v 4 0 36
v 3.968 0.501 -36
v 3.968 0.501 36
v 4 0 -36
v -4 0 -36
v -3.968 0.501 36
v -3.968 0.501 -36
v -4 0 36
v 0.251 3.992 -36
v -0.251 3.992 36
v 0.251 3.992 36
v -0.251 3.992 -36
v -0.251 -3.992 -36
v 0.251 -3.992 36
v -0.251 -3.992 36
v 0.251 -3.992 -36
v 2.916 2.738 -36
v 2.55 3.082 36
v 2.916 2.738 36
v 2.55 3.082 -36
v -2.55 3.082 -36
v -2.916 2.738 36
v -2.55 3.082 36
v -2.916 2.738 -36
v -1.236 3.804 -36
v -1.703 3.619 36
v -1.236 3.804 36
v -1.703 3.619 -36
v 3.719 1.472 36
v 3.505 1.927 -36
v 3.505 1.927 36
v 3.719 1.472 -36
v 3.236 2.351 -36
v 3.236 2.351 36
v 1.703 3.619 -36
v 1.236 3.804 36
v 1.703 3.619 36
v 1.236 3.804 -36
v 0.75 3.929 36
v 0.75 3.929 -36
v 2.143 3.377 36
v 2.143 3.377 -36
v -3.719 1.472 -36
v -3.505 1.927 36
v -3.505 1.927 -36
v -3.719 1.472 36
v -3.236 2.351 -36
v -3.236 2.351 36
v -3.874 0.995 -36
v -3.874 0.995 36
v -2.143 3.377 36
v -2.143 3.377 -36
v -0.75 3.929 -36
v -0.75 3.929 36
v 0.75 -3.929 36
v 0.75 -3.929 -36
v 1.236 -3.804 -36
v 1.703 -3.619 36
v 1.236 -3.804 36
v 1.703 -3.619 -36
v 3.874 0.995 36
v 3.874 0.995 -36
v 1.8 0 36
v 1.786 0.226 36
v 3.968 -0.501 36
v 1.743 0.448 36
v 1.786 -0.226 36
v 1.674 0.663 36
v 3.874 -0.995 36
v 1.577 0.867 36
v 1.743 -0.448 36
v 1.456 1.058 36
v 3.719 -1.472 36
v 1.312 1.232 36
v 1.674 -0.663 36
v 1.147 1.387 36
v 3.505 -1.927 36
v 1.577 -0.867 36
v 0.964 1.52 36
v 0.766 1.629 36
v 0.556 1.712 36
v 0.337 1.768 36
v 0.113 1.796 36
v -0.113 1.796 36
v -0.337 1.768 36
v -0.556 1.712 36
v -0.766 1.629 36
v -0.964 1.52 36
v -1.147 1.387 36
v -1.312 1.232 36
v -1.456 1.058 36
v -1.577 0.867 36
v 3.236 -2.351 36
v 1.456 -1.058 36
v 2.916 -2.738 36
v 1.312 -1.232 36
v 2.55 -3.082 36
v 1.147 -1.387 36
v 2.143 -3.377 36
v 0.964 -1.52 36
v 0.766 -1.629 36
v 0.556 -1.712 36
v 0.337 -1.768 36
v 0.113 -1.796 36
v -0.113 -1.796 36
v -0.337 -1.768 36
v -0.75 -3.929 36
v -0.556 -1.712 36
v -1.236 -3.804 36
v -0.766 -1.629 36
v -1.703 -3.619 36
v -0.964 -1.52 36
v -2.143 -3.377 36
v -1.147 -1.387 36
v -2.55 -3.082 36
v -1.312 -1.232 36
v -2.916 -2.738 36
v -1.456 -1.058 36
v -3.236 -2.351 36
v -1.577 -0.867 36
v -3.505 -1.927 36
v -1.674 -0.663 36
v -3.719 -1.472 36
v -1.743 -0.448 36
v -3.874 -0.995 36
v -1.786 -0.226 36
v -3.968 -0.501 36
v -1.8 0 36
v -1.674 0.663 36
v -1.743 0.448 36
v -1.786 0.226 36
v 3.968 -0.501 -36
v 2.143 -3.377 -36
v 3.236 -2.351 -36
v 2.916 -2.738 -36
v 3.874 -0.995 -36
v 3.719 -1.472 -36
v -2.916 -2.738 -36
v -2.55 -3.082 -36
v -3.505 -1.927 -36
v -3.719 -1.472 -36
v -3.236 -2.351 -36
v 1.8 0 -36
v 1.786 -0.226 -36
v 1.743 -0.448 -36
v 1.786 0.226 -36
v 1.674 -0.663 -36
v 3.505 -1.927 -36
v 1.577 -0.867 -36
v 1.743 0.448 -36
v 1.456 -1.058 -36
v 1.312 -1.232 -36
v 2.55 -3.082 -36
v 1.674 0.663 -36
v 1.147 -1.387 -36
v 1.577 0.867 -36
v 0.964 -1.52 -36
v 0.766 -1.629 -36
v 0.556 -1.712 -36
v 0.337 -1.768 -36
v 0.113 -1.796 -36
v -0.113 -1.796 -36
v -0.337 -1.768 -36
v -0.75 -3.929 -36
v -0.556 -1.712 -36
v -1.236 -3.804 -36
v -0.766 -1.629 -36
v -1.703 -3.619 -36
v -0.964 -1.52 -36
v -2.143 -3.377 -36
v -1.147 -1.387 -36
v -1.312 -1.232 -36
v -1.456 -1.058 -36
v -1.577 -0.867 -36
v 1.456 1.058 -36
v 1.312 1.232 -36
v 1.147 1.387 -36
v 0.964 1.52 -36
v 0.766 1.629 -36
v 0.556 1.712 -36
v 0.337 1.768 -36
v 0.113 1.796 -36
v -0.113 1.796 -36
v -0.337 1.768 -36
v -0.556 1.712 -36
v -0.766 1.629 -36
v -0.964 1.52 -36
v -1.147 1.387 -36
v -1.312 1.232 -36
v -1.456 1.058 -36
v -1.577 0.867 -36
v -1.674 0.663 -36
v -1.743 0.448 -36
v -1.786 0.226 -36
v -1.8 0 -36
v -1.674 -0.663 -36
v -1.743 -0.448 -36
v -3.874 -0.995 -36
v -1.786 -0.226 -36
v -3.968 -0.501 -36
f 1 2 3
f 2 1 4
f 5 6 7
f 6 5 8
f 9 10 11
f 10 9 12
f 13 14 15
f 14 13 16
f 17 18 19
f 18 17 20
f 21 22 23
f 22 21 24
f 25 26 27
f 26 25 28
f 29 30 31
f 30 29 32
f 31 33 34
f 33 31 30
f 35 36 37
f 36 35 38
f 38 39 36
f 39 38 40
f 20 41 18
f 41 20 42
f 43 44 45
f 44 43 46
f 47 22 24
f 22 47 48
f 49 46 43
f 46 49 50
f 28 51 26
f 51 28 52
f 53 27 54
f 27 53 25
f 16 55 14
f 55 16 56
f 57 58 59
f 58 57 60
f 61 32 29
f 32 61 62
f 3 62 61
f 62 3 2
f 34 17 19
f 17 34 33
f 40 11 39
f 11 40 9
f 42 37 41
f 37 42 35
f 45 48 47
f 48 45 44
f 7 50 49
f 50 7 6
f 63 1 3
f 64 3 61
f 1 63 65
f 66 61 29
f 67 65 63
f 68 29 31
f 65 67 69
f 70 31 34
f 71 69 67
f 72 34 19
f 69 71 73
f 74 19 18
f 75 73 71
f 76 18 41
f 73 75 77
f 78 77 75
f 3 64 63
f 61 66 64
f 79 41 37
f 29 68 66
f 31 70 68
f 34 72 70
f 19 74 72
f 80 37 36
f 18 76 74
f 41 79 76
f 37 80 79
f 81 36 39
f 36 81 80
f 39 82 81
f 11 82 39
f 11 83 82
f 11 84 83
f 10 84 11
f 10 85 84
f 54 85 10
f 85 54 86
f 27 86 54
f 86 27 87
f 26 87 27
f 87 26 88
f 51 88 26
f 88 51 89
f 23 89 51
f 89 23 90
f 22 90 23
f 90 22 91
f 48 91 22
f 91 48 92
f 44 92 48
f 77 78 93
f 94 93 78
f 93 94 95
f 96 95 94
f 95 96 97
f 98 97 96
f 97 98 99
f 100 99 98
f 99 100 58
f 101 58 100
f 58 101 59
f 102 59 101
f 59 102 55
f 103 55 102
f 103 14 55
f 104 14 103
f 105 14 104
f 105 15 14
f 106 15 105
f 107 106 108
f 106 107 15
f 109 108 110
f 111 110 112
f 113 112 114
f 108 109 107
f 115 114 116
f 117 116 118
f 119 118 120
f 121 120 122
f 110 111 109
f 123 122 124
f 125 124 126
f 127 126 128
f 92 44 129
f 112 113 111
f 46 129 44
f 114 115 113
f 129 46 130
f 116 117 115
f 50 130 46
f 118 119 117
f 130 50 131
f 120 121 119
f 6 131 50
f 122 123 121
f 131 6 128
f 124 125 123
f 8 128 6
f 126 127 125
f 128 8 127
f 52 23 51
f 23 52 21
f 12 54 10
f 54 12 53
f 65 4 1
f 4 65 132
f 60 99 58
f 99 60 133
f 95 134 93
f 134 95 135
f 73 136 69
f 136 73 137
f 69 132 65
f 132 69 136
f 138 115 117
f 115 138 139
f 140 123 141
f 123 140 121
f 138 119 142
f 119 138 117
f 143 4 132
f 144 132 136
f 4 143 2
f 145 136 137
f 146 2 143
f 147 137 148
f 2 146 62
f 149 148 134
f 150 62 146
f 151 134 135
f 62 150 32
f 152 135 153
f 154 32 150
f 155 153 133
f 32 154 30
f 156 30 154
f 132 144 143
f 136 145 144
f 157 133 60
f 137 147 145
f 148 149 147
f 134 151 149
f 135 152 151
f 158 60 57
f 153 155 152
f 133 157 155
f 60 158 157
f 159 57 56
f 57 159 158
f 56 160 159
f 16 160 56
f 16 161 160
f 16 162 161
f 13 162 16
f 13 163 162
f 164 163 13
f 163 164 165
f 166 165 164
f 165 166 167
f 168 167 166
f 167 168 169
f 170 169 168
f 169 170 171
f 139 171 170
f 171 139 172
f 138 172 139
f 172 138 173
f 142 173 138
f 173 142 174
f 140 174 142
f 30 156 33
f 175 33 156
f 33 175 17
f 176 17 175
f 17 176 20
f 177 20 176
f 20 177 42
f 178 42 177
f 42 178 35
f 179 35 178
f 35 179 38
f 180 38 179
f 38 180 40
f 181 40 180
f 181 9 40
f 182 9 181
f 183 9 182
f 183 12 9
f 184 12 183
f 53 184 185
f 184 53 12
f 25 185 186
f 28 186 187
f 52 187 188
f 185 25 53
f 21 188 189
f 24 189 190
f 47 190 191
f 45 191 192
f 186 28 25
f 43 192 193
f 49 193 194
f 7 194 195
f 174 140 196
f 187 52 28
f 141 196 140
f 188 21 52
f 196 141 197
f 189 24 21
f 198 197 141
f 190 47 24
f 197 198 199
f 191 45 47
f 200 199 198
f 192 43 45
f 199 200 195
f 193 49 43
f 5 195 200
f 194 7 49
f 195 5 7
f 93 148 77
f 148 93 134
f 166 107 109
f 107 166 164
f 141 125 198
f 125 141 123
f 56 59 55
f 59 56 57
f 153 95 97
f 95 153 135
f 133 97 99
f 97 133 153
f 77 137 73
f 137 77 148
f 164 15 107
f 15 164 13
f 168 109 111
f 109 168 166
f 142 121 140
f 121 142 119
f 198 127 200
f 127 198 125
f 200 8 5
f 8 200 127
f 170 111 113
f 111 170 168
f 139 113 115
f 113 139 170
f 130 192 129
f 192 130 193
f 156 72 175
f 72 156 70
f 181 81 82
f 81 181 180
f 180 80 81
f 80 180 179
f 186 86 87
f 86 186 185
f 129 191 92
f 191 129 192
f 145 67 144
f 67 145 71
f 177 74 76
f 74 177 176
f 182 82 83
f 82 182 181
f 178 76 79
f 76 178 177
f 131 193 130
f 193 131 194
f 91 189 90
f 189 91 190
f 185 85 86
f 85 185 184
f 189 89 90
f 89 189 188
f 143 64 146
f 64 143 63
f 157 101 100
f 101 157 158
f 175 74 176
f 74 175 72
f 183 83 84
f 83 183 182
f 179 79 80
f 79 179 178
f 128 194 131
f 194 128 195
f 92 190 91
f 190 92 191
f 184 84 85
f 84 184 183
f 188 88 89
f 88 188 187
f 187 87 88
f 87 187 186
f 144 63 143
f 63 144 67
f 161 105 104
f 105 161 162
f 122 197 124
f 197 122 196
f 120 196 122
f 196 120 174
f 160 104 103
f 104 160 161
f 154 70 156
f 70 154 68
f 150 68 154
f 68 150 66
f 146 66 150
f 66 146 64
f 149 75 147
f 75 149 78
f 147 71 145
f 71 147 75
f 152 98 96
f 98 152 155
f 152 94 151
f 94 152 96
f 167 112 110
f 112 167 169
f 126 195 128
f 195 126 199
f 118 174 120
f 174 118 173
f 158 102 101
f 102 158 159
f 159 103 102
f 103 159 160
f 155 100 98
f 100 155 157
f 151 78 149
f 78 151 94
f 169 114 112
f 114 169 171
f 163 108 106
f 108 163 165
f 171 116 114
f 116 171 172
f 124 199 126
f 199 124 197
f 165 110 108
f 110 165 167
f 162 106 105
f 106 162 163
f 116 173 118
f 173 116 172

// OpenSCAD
$fn = 50;


difference() {
	union() {
		translate(v = [0, 0, -36.0000000000]) {
			cylinder(h = 72, r = 4.0000000000);
		}
	}
	union() {
		translate(v = [0, 0, -100.0000000000]) {
			cylinder(h = 200, r = 1.8000000000);
		}
	}
}
